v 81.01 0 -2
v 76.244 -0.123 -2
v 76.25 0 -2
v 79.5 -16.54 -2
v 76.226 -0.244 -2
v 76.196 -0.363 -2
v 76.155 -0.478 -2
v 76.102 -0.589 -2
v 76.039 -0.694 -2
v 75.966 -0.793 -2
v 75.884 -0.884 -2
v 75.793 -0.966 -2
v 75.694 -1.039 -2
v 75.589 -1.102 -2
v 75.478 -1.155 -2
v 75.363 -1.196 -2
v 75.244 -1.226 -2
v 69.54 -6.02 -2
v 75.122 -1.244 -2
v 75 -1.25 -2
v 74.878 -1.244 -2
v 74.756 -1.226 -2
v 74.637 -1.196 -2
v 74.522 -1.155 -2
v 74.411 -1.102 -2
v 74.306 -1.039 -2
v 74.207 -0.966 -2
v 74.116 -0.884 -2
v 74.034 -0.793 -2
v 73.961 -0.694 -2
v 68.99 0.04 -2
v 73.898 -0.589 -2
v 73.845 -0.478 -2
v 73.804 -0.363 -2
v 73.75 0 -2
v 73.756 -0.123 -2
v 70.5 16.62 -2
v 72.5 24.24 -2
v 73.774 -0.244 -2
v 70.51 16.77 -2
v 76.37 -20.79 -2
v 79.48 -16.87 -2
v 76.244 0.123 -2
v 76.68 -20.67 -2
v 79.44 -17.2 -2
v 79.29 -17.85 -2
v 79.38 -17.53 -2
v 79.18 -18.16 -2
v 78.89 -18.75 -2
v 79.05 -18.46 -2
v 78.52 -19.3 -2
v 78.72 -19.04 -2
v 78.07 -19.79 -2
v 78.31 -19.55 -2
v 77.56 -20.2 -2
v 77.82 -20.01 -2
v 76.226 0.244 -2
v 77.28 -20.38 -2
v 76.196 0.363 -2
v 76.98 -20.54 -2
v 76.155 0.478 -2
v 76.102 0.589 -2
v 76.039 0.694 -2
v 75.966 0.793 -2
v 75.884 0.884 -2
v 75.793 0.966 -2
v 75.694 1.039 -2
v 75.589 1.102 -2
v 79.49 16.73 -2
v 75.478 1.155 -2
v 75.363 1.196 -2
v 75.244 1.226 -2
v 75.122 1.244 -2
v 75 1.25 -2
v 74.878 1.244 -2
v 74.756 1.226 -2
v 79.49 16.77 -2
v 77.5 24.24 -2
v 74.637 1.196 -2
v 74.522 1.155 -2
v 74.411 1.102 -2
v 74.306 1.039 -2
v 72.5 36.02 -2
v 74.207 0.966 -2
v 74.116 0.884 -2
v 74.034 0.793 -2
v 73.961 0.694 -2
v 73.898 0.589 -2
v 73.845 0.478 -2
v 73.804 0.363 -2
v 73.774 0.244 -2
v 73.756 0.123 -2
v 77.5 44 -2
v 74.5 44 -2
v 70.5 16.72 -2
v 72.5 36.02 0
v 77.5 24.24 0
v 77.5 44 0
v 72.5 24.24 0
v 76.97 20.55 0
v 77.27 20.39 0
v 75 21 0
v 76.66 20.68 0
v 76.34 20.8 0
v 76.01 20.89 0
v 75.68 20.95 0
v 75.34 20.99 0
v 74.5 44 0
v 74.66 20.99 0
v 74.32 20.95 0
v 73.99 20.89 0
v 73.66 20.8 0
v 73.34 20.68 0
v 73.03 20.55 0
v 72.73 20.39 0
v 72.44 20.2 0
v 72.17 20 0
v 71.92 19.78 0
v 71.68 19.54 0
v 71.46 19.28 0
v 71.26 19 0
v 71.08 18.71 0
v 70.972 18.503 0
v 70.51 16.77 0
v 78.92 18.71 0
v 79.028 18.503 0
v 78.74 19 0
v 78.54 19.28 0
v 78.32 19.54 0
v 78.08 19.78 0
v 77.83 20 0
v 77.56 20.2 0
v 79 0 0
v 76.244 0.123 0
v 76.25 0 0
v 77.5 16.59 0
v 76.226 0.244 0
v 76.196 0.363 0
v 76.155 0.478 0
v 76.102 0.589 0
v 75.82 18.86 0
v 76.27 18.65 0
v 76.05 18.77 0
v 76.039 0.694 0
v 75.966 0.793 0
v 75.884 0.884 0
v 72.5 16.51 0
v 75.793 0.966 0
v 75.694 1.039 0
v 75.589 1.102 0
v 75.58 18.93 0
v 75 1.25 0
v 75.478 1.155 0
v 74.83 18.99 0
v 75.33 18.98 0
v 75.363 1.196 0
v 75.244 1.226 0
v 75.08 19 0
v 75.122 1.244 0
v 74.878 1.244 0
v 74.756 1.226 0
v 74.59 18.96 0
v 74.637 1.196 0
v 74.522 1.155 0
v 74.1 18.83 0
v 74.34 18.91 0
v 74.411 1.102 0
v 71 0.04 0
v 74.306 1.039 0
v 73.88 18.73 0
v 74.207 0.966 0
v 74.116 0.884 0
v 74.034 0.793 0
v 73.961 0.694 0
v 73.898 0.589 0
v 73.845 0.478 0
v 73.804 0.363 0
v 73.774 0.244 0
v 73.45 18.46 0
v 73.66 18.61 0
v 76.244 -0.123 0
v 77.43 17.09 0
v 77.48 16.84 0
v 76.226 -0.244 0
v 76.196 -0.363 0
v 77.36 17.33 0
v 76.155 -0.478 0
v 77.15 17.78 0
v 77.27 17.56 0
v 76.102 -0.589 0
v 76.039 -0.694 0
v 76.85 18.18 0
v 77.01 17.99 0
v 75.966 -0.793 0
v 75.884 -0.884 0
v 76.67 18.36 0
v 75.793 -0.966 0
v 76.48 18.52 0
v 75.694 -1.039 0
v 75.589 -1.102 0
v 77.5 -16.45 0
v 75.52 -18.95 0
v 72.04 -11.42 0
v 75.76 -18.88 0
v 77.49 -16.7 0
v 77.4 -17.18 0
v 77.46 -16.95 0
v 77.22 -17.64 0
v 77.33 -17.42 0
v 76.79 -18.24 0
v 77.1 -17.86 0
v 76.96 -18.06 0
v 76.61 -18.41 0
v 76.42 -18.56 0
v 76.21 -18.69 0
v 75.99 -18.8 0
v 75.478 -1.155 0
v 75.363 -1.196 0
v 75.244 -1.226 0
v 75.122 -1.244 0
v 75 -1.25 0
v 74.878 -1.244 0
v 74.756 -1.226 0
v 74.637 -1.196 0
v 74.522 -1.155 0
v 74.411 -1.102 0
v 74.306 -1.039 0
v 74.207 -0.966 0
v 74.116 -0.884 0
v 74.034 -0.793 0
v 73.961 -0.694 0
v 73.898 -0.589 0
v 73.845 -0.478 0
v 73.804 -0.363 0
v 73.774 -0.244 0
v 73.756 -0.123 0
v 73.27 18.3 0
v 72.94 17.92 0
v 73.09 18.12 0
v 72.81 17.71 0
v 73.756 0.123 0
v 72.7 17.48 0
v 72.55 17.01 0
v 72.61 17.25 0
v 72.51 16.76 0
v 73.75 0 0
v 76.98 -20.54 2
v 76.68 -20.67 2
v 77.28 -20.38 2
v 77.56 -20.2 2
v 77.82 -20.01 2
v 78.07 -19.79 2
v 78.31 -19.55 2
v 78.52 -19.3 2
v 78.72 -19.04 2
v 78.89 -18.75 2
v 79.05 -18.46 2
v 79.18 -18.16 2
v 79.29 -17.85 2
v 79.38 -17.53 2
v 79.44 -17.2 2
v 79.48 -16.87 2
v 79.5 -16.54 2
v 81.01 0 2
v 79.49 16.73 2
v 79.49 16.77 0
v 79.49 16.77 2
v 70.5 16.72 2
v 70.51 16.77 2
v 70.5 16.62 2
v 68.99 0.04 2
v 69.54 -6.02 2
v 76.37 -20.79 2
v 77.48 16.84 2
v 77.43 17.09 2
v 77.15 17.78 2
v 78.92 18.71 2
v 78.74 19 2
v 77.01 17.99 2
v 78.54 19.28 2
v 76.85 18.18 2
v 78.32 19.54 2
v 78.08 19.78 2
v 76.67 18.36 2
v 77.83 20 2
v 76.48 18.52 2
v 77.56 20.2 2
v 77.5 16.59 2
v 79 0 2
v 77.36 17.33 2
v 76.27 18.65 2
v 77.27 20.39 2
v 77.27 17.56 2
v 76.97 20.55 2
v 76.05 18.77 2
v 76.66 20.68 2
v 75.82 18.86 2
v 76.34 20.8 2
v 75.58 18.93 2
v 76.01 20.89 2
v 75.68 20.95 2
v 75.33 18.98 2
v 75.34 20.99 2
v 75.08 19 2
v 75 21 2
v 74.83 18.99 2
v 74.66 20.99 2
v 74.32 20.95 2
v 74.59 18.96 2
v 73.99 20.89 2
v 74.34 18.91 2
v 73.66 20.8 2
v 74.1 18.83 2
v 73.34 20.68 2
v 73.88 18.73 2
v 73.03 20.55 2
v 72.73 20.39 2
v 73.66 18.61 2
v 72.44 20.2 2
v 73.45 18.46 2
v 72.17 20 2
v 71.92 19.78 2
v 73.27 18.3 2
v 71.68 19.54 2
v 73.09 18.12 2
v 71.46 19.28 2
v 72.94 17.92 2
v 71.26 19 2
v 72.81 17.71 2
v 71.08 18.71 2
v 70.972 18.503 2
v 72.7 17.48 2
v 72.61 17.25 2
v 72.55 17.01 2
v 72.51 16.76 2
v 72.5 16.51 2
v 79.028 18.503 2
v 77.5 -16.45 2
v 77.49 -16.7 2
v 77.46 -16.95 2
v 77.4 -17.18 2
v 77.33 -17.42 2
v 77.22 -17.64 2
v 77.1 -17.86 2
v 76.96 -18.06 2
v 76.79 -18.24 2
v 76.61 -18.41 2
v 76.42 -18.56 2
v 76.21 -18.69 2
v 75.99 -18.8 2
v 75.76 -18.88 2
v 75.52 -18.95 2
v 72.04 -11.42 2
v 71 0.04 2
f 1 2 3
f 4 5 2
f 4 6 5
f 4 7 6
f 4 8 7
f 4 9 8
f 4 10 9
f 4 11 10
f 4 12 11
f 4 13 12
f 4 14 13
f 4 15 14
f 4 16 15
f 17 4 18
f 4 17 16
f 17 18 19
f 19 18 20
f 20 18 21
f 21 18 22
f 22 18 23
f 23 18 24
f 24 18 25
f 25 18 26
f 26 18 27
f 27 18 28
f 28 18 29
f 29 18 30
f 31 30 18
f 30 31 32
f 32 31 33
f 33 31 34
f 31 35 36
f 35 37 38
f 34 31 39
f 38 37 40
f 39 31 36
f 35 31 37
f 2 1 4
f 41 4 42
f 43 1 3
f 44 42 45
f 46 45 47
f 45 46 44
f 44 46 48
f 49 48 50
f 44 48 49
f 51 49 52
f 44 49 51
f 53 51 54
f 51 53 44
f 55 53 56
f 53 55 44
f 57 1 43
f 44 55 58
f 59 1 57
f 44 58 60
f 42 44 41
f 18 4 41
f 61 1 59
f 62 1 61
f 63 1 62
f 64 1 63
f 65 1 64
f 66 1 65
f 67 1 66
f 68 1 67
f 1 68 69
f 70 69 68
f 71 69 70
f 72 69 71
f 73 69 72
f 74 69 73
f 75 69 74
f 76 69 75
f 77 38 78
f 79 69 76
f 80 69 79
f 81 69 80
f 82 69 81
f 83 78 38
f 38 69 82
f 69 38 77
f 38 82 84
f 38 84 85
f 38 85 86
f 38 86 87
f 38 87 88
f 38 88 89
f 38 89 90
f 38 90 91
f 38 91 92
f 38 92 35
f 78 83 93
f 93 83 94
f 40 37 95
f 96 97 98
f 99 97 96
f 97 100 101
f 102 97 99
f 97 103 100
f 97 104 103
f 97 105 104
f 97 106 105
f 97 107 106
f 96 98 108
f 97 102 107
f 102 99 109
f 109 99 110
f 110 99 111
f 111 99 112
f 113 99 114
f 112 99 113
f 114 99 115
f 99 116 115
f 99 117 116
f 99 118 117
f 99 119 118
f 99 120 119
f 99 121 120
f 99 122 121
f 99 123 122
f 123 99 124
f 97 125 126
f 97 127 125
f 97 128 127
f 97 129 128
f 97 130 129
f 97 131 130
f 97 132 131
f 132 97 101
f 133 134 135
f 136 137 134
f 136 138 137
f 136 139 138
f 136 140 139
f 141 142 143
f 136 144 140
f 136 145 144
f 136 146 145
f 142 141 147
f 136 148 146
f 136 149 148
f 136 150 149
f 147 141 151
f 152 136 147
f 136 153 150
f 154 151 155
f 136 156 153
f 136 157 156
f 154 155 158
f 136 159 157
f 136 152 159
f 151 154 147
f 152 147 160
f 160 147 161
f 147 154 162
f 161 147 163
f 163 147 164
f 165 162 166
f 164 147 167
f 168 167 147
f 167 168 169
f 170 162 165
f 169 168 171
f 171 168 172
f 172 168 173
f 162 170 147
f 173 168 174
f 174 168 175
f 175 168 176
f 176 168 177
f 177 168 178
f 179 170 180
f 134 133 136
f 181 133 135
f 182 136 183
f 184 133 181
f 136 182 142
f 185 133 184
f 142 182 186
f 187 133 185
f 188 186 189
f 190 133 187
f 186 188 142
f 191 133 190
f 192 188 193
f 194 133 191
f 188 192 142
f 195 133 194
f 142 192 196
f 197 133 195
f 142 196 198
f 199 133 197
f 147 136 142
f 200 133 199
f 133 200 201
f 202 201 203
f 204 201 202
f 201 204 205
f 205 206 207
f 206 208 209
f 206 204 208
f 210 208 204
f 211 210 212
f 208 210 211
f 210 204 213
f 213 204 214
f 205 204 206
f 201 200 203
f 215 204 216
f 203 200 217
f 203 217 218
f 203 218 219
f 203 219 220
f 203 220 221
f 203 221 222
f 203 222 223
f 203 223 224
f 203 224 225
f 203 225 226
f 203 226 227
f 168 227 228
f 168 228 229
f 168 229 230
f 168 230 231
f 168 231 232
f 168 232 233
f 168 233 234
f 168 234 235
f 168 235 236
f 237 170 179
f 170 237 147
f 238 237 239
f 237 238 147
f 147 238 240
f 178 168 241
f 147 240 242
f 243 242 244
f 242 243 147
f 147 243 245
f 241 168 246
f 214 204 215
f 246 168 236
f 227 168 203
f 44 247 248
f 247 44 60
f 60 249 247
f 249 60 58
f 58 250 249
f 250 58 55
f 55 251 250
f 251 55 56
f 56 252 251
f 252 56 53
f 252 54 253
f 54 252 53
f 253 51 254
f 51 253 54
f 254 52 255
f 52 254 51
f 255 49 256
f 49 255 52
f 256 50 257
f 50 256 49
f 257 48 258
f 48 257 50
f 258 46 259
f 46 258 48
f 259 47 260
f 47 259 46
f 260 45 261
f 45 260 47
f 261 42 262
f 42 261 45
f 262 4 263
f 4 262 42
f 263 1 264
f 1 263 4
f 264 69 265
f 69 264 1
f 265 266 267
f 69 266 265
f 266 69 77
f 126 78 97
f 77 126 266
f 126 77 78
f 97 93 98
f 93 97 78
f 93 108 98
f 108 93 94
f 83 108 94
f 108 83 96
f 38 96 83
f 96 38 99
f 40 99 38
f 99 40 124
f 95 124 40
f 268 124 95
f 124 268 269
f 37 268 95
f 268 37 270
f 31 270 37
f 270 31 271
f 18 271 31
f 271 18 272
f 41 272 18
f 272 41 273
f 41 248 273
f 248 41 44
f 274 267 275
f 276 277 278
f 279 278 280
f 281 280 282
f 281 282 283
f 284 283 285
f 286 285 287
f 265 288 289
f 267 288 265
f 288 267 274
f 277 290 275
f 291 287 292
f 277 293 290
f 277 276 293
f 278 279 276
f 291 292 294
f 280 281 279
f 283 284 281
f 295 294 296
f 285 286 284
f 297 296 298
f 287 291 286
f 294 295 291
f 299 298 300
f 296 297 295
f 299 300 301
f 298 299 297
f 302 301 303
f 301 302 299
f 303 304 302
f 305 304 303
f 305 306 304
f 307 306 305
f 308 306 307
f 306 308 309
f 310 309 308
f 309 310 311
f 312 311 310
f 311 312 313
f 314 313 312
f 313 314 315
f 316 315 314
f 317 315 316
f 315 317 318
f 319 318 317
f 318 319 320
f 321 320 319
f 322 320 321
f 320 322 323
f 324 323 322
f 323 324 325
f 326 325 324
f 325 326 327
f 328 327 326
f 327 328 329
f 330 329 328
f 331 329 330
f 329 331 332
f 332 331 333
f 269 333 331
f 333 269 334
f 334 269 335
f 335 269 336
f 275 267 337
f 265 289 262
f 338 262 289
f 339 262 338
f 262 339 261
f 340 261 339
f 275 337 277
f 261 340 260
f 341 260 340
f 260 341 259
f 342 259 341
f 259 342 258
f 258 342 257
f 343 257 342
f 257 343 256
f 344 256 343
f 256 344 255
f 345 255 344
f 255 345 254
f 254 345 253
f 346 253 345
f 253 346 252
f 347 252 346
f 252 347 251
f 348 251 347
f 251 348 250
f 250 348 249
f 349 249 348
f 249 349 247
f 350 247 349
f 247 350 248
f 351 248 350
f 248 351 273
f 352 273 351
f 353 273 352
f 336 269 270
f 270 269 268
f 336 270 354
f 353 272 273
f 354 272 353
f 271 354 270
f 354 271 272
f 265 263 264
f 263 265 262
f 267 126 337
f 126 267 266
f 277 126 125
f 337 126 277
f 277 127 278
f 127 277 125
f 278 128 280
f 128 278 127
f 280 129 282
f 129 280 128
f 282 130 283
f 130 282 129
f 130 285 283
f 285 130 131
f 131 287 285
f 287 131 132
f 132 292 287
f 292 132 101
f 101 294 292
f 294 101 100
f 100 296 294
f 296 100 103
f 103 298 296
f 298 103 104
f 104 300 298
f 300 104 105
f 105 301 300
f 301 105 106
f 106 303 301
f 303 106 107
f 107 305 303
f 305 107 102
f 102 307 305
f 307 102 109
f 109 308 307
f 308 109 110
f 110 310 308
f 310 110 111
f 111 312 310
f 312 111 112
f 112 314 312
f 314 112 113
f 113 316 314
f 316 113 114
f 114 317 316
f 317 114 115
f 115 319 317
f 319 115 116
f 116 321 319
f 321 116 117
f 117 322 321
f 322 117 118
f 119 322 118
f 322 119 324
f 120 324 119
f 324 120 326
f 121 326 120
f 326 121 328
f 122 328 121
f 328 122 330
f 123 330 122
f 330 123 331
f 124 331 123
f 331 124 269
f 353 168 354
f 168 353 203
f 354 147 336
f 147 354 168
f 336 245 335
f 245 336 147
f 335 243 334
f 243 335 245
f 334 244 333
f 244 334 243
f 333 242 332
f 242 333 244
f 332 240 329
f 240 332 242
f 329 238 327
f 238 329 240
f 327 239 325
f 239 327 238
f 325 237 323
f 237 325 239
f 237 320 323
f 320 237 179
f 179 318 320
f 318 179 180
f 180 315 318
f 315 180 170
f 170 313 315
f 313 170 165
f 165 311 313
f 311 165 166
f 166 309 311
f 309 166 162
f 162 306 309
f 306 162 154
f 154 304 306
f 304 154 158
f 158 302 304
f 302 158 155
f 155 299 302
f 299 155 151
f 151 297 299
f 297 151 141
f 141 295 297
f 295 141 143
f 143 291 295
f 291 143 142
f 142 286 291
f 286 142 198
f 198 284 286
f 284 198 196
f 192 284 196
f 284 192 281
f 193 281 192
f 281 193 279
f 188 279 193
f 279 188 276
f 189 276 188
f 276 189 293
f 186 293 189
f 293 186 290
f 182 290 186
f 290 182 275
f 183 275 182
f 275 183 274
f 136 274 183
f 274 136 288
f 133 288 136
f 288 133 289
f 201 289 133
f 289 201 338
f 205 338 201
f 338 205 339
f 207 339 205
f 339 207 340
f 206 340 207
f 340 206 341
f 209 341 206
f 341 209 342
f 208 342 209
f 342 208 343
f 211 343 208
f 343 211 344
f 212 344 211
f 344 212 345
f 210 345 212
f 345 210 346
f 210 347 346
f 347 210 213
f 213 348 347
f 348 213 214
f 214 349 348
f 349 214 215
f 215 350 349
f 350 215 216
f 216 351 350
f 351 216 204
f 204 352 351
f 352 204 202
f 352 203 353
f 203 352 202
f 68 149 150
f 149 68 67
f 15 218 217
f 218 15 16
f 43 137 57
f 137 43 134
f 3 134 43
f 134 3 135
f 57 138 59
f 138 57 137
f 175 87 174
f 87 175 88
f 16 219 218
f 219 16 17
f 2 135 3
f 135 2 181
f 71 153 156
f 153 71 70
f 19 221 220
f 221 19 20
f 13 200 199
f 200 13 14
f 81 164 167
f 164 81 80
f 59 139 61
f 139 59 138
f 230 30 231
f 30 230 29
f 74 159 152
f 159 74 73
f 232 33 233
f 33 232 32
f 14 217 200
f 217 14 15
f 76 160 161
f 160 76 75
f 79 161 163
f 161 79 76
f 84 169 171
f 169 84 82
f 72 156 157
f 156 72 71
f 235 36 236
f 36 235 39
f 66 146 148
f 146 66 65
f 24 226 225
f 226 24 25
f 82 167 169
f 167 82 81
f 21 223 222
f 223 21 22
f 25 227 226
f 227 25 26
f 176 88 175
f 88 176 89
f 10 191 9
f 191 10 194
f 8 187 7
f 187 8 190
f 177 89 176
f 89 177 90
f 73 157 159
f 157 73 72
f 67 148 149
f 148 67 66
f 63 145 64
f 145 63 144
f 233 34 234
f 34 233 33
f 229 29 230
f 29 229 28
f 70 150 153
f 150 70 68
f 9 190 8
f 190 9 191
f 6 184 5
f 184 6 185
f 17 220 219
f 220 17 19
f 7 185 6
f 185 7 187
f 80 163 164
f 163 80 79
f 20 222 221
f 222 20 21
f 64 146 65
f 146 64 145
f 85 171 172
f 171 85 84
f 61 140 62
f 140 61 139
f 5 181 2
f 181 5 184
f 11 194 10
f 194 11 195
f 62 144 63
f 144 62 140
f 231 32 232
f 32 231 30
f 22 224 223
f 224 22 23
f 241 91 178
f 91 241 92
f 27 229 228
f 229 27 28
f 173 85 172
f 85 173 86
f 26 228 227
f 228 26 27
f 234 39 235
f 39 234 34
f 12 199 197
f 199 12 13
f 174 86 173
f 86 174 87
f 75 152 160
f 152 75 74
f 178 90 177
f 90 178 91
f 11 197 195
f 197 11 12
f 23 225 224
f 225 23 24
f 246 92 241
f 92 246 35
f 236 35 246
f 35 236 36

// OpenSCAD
include <parameters.scad>

// Braço do servo convertido de references/servo_stick.stl.
//
// A peça é prismática em Z: uma chapa de 2 mm com um ressalto de mais 2 mm
// acompanhando a borda. Orientação e coordenadas iguais às do STL; o eixo do
// servo fica em servo_stick_hub, ou seja X = 75, Y = 0.

// Contorno externo do braço.
servo_stick_outline = [
    [81.01, 0.00], [79.50, -16.54], [79.48, -16.87], [79.44, -17.20],
    [79.38, -17.53], [79.29, -17.85], [79.18, -18.16], [79.05, -18.46],
    [78.89, -18.75], [78.72, -19.04], [78.52, -19.30], [78.31, -19.55],
    [78.07, -19.79], [77.82, -20.01], [77.56, -20.20], [77.28, -20.38],
    [76.98, -20.54], [76.68, -20.67], [76.37, -20.79], [69.54, -6.02],
    [68.99, 0.04], [70.50, 16.62], [70.50, 16.67], [70.50, 16.72],
    [70.51, 16.77], [72.50, 24.24], [72.50, 36.02], [74.50, 44.00],
    [77.50, 44.00], [77.50, 24.24], [79.49, 16.77], [79.49, 16.76],
    [79.49, 16.74], [79.49, 16.73]
];

// Áreas rebaixadas: o ressalto é o contorno menos estas duas regiões.
servo_stick_recess_hub = [
    [72.04, -11.42], [75.52, -18.95], [75.76, -18.88], [75.99, -18.80],
    [76.21, -18.69], [76.42, -18.56], [76.61, -18.41], [76.79, -18.24],
    [76.96, -18.06], [77.10, -17.86], [77.22, -17.64], [77.33, -17.42],
    [77.40, -17.18], [77.46, -16.95], [77.49, -16.70], [77.50, -16.45],
    [79.00, 0.00], [77.50, 16.59], [77.48, 16.84], [77.43, 17.09],
    [77.36, 17.33], [77.27, 17.56], [77.15, 17.78], [77.01, 17.99],
    [76.85, 18.18], [76.67, 18.36], [76.48, 18.52], [76.27, 18.65],
    [76.05, 18.77], [75.82, 18.86], [75.58, 18.93], [75.33, 18.98],
    [75.08, 19.00], [74.83, 18.99], [74.59, 18.96], [74.34, 18.91],
    [74.10, 18.83], [73.88, 18.73], [73.66, 18.61], [73.45, 18.46],
    [73.27, 18.30], [73.09, 18.12], [72.94, 17.92], [72.81, 17.71],
    [72.70, 17.48], [72.61, 17.25], [72.55, 17.01], [72.51, 16.76],
    [72.50, 16.51], [71.00, 0.04]
];

servo_stick_recess_arm = [
    [77.50, 44.00], [74.50, 44.00], [72.50, 36.02], [72.50, 24.24],
    [70.68, 17.77], [70.79, 18.10], [70.92, 18.41], [70.96, 18.49],
    [70.97, 18.50], [71.08, 18.71], [71.26, 19.00], [71.46, 19.28],
    [71.68, 19.54], [71.92, 19.78], [72.17, 20.00], [72.44, 20.20],
    [72.73, 20.39], [73.03, 20.55], [73.34, 20.68], [73.66, 20.80],
    [73.99, 20.89], [74.32, 20.95], [74.66, 20.99], [75.00, 21.00],
    [75.34, 20.99], [75.68, 20.95], [76.01, 20.89], [76.34, 20.80],
    [76.66, 20.68], [76.97, 20.55], [77.27, 20.39], [77.56, 20.20],
    [77.83, 20.00], [78.08, 19.78], [78.32, 19.54], [78.54, 19.28],
    [78.74, 19.00], [78.92, 18.71], [79.03, 18.50], [79.03, 18.50],
    [79.04, 18.49], [79.08, 18.41], [79.21, 18.10], [79.32, 17.77],
    [77.50, 24.24]
];

module servo_stick() {
    difference() {
        union() {
            // Chapa inferior, de Z = -2 a 0.
            translate([0, 0, -servo_stick_lower_thickness])
                linear_extrude(height = servo_stick_lower_thickness)
                    polygon(servo_stick_outline);

            // Ressalto de borda, de Z = 0 a 2.
            linear_extrude(height = servo_stick_upper_thickness)
                difference() {
                    polygon(servo_stick_outline);
                    polygon(servo_stick_recess_hub);
                    polygon(servo_stick_recess_arm);
                }
        }

        // Furo do eixo do servo.
        translate([
            servo_stick_hub[0],
            servo_stick_hub[1],
            -servo_stick_lower_thickness - epsilon
        ])
            cylinder(
                d = servo_stick_shaft_diameter,
                h = servo_stick_lower_thickness
                    + servo_stick_upper_thickness + 2 * epsilon
            );
    }
}

scale(servo_stick_scale) servo_stick();
